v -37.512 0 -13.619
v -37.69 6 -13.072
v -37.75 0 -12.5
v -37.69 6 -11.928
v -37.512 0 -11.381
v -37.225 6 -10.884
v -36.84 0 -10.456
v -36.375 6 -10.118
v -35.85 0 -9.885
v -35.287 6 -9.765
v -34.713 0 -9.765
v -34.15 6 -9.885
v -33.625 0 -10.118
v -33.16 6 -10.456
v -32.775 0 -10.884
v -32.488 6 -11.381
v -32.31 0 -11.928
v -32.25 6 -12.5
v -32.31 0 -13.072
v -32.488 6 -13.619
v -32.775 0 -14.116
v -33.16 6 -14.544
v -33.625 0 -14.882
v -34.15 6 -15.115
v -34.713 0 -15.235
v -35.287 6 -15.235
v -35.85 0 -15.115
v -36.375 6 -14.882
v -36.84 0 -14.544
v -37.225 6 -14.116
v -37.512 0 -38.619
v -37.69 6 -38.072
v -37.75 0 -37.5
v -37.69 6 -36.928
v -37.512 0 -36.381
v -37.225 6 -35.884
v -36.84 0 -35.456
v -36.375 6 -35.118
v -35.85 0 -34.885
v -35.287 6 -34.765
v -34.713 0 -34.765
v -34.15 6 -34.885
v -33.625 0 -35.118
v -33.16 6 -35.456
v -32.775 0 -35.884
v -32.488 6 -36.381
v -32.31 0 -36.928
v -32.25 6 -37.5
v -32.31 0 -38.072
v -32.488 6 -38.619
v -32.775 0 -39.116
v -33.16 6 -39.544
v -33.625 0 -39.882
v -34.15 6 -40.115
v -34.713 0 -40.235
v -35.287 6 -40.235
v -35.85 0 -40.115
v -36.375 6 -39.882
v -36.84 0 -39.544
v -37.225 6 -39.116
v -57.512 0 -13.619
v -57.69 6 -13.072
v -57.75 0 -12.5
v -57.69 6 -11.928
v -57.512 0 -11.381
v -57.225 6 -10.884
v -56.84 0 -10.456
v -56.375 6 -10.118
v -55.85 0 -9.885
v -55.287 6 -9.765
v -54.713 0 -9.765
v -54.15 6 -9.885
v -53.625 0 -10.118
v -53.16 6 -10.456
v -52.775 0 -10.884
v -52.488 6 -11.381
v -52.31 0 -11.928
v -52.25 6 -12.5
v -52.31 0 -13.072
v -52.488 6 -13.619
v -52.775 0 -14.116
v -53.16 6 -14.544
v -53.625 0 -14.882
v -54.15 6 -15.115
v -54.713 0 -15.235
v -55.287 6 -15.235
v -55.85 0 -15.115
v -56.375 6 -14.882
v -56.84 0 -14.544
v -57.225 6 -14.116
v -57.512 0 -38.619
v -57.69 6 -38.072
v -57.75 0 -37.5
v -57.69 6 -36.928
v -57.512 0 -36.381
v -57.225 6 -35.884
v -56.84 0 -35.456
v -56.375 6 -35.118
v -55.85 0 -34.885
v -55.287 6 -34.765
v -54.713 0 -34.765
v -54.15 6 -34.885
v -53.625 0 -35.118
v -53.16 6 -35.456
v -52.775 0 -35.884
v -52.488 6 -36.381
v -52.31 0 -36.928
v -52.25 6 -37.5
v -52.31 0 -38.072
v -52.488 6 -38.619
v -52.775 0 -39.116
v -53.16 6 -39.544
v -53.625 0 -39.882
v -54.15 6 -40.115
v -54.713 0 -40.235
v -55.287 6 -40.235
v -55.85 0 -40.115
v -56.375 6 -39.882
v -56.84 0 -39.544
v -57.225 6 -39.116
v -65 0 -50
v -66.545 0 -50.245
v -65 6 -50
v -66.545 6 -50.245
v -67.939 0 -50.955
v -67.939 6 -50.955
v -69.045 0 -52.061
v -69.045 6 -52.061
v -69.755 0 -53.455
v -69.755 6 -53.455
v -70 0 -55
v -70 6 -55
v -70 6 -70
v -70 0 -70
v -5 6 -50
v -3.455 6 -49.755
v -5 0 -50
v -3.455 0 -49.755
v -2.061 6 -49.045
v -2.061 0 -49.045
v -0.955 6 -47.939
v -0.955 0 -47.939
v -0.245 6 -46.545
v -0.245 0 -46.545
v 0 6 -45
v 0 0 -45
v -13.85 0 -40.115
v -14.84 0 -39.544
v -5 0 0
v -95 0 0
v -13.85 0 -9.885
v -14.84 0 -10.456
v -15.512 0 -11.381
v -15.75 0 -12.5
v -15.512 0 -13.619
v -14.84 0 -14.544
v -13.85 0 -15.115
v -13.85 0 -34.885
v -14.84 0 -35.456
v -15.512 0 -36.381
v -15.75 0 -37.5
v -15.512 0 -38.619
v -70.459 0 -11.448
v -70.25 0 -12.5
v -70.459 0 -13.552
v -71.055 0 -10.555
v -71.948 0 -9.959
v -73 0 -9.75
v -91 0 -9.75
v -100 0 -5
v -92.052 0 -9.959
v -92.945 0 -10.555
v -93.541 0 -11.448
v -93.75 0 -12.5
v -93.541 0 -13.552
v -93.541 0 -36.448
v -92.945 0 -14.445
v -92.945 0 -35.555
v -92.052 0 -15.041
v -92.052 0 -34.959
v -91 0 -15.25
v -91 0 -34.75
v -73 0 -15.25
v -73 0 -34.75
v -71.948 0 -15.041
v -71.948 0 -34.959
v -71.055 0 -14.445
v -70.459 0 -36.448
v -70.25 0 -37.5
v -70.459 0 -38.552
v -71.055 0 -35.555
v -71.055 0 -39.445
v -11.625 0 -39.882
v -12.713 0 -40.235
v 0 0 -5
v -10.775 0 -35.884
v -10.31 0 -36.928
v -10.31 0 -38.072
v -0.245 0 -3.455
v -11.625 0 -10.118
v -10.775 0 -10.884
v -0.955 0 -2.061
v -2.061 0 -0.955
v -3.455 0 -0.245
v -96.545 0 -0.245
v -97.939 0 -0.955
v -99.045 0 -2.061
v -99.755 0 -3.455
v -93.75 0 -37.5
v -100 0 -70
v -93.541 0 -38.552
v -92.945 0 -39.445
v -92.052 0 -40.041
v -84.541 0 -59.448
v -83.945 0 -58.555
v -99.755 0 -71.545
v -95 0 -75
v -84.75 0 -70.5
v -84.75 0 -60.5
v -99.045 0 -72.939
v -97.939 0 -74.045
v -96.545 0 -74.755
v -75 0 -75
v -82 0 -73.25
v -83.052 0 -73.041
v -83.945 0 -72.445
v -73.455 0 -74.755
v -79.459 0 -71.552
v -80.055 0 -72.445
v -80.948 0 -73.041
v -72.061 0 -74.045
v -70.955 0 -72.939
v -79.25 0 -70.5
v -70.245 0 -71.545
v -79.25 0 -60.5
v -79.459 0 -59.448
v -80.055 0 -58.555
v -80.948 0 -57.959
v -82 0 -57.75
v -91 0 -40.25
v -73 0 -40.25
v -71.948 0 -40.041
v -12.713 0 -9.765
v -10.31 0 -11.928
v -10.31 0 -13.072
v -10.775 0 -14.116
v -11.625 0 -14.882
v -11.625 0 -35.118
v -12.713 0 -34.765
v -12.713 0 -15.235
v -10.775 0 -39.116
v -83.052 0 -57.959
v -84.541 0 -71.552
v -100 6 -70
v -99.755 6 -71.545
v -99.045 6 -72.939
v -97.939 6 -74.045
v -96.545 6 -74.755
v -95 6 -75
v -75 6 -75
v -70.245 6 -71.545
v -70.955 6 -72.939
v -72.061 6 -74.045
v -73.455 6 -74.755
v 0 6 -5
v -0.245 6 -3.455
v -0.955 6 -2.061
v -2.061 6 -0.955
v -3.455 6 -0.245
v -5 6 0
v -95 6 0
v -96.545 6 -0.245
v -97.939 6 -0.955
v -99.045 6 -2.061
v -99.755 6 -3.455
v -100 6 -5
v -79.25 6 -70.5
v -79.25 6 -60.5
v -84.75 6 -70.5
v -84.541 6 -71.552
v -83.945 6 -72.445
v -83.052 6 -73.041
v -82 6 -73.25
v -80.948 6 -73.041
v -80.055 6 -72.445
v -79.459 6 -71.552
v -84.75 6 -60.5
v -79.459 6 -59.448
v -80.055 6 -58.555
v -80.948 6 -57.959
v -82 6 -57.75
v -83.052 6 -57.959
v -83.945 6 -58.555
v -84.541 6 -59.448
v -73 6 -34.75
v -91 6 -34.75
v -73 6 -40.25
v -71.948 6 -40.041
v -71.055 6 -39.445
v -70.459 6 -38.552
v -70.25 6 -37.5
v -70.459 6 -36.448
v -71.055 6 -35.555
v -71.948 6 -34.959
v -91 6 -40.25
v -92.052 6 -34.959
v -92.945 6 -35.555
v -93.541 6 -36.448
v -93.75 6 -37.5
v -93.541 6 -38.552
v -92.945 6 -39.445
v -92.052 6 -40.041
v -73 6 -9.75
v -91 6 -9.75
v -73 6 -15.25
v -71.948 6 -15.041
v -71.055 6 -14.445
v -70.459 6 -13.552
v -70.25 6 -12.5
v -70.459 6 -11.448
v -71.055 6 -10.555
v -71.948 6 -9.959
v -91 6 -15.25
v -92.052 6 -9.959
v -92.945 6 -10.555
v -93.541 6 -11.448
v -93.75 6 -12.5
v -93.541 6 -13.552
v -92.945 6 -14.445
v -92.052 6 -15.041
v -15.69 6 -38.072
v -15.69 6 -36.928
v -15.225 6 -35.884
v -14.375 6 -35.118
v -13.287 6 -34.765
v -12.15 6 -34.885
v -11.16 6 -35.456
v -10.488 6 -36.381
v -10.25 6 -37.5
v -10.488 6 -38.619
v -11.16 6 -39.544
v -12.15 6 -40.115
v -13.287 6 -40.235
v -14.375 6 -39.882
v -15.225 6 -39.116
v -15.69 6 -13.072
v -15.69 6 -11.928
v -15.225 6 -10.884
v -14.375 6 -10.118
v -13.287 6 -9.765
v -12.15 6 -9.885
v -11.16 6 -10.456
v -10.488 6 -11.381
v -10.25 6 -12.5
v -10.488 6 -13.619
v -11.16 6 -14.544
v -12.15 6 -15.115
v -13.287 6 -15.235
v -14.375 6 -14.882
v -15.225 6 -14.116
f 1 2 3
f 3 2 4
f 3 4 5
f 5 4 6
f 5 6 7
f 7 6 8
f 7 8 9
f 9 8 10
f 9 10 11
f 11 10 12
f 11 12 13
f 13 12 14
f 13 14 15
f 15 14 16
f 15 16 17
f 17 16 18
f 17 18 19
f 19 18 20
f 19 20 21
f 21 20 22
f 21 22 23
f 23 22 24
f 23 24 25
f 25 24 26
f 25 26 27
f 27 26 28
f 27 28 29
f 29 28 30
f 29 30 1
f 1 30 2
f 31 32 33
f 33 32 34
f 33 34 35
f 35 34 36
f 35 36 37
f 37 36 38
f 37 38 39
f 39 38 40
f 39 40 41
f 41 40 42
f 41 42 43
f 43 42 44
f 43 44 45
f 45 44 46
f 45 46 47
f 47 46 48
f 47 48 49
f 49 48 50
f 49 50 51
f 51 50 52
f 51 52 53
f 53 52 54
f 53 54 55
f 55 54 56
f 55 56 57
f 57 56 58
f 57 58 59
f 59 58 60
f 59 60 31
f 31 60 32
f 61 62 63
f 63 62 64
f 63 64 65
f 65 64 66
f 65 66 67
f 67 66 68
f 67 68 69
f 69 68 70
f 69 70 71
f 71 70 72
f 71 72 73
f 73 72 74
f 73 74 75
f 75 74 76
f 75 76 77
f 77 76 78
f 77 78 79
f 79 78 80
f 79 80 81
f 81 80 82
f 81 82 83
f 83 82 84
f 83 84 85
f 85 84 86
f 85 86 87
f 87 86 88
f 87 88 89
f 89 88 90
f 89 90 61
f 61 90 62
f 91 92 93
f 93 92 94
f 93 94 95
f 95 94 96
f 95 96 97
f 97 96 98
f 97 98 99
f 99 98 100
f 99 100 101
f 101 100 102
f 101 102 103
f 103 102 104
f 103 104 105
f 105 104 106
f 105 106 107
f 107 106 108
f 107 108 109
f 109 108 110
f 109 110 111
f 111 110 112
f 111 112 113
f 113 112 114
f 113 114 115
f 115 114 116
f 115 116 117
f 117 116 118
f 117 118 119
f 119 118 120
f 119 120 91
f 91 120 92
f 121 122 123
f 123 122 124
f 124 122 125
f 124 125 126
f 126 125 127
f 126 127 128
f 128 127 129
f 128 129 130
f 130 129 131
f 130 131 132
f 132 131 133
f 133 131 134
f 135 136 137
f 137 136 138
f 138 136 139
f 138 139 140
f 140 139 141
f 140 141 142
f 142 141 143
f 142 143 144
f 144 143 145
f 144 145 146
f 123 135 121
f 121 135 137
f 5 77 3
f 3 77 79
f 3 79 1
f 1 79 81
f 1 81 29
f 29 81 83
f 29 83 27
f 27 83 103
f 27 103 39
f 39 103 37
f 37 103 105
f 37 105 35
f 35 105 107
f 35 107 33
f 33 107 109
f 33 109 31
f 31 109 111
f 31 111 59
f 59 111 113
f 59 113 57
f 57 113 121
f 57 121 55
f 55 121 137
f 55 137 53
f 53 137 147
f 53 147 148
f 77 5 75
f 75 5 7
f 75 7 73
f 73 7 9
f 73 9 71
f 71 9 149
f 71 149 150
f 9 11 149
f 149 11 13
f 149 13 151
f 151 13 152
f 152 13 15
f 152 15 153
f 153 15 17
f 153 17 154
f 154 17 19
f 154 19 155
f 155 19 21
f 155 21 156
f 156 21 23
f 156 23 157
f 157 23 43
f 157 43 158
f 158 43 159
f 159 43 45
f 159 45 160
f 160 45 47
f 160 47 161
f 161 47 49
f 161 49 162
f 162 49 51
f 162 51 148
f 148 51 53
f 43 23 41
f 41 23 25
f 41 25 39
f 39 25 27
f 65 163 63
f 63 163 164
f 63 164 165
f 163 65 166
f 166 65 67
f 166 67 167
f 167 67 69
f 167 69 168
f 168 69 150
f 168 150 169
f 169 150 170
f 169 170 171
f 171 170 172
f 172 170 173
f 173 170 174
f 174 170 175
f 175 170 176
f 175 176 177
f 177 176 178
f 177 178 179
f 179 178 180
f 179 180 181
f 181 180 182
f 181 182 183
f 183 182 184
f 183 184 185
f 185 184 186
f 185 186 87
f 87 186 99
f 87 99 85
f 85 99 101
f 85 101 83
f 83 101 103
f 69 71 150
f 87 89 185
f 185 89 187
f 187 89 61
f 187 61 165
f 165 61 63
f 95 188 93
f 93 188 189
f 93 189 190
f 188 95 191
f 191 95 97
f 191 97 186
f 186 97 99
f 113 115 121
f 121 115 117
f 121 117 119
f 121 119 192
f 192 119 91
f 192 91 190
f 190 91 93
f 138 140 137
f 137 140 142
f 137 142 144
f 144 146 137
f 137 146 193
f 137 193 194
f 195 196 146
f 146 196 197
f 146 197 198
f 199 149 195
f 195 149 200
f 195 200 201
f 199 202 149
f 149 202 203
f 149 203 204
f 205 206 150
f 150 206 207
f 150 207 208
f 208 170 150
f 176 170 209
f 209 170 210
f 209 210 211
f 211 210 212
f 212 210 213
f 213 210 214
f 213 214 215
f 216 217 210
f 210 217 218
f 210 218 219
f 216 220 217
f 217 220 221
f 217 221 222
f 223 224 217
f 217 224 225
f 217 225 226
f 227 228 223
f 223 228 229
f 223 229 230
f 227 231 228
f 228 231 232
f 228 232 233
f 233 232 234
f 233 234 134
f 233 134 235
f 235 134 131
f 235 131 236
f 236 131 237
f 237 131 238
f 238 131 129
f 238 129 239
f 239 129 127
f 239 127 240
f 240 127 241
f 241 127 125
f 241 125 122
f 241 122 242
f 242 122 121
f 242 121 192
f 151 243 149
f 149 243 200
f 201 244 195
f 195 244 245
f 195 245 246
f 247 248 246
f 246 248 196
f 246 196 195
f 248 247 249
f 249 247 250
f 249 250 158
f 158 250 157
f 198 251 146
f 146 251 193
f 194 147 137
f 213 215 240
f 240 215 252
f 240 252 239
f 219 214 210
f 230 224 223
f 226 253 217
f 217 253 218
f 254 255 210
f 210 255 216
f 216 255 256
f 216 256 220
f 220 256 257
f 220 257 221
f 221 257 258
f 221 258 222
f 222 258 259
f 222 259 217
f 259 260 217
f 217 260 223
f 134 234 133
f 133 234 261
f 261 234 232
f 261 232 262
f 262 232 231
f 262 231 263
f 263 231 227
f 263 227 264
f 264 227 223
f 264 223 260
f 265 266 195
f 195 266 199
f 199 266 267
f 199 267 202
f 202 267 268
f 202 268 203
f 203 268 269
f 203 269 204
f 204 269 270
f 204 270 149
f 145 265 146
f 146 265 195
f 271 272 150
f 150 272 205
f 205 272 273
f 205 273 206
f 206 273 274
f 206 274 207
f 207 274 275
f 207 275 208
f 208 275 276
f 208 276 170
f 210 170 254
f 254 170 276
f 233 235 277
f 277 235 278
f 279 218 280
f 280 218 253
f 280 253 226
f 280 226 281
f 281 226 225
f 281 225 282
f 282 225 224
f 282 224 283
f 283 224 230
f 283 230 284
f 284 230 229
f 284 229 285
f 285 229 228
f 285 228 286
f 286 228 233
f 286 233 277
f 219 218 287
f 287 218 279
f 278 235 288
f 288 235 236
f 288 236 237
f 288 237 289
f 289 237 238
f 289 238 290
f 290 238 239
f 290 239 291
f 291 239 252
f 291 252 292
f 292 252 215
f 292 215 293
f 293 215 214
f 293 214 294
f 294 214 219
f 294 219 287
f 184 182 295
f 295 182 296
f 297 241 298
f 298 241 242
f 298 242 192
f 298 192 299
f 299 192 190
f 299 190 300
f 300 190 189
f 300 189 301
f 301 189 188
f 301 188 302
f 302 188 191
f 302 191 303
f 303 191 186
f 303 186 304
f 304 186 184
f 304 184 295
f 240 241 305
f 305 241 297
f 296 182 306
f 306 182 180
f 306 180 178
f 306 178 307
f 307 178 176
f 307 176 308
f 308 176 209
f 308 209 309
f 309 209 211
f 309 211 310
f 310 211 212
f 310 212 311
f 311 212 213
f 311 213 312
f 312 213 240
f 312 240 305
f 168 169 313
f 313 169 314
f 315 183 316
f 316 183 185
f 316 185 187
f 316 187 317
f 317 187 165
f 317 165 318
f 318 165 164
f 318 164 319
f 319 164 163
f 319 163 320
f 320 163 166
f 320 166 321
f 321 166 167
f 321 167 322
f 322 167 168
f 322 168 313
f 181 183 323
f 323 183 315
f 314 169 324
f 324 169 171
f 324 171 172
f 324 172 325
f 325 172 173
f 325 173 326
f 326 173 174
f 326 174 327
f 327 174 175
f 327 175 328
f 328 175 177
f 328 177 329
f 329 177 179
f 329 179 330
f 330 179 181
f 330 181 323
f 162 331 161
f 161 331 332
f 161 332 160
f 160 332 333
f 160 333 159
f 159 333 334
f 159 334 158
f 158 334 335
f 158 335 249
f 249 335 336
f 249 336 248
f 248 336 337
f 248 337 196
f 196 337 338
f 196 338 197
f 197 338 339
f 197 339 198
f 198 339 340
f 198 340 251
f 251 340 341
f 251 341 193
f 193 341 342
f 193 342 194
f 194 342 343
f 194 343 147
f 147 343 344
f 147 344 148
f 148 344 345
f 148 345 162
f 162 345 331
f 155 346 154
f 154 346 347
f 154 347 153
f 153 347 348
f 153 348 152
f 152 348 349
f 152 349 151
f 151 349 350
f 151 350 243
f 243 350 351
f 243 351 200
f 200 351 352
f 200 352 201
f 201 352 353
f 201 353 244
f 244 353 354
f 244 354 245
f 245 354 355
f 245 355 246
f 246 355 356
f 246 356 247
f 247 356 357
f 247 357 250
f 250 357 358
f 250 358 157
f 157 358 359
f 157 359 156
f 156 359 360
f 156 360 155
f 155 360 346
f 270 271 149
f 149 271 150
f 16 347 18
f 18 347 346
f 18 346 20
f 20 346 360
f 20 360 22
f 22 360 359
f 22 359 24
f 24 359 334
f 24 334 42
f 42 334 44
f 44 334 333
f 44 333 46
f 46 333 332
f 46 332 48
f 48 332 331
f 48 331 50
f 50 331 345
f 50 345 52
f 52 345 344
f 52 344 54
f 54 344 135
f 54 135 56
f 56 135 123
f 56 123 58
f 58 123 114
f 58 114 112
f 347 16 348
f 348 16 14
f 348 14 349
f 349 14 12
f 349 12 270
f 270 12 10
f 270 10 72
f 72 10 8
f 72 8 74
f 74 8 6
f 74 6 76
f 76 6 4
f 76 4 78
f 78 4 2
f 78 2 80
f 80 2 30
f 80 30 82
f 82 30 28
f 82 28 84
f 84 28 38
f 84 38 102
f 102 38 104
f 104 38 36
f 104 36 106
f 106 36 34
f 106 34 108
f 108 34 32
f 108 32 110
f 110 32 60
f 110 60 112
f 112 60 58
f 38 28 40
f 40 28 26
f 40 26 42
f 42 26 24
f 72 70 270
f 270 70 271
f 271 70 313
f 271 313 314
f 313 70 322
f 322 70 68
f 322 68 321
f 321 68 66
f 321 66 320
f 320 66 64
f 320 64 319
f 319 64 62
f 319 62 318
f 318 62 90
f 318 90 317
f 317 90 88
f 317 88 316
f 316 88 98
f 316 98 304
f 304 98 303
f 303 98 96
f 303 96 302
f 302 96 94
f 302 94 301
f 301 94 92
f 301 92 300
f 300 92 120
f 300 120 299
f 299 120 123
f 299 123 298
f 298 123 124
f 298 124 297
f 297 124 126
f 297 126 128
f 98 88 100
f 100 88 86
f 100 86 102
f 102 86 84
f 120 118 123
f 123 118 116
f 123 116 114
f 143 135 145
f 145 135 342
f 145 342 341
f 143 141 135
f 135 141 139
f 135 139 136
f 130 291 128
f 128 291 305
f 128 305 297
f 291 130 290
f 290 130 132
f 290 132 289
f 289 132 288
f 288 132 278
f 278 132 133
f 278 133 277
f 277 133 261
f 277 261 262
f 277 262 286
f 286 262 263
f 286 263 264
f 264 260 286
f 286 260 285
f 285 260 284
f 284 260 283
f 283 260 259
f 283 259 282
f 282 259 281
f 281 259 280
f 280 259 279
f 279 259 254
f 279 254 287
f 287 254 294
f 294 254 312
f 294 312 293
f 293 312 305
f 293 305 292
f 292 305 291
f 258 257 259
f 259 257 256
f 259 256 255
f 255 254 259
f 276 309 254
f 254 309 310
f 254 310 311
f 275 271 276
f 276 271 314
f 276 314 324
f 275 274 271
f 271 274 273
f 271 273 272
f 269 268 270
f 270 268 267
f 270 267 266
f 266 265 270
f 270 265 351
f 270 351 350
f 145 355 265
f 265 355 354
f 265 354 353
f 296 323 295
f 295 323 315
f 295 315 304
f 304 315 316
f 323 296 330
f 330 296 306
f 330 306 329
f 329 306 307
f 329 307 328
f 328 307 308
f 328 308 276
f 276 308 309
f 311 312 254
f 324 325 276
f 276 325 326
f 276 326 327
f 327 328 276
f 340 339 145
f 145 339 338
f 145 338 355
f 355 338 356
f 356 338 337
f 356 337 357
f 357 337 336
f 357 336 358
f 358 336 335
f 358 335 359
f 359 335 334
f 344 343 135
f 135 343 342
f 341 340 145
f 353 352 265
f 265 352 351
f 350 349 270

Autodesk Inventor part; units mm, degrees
ref_plane "YZ Plane" through (0, 0, 0) normal (1, 0, 0) x (0, 1, 0)
ref_plane "XZ Plane" through (0, 0, 0) normal (0, 1, 0) x (-1, 0, 0)
ref_plane "XY Plane" through (0, 0, 0) normal (0, 0, 1) x (1, 0, 0)
sketch "Sketch1" plane through (0, 0, 0) normal (0, 1, 0) x (-1, 0, 0)
  line L0 (0, 0) -> (100, 0)
  line L1 (100, 0) -> (100, -50)
  line L2 (100, -50) -> (0, -50)
  line L3 (0, -50) -> (0, 0)
  line L4 (0, 0) -> (0, -16.6667)
  line L5 (0, -16.6667) -> (6, -16.6667)
  dimension "d0" = 100
  dimension "d1" = 50
  dimension "d2" = 16.6667
  dimension "d3" = 6
extrude "Extrusion1" add sketch "Sketch1" along normal blind 6
sketch "Sketch3" plane through (0, 6, 0) normal (0, 1, 0) x (1, 0, 0)
  circle A0 centre (-13, 12.5) radius 2.75
  line L0 (0, 0) -> (0, 50) projected
  line L1 (-100, 0) -> (0, 0) projected
  circle A1 centre (-13, 37.5) radius 2.75
  dimension "d21" = 5.5
  dimension "d22" = 13
  dimension "d23" = 12.5
  dimension "d26" = 25
extrude "Extrusion3" cut sketch "Sketch3" against normal through all
sketch "Sketch4" plane through (0, 6, 0) normal (0, 1, 0) x (1, 0, 0)
  circle A0 centre (-13, 12.5) radius 2.75 projected
  line L0 (-13, 12.5) -> (-73, 12.5)
  line L1 (-73, 12.5) -> (-91, 12.5) construction
  line L2 (-73, 15.25) -> (-91, 15.25)
  line L3 (-91, 9.75) -> (-73, 9.75)
  arc A1 (-73, 9.75) -> (-73, 15.25) centre (-73, 12.5) ccw
  arc A2 (-91, 15.25) -> (-91, 9.75) centre (-91, 12.5) ccw
  point P0 (0, 0)
  point P1 (-82, 12.5)
  dimension "d33" = 60
  dimension "d34" = 18
  dimension "d35" = 5.5
extrude "Extrusion4" cut sketch "Sketch4" against normal through all contours A1 L3 A2 L2
pattern_linear "Rectangular Pattern2" count 2 spacing 25 along (0, 0, -1) of "Extrusion4"
sketch "Sketch5" plane through (0, 0, -50) normal (0, 0, -1) x (-1, 0, 0)
  line L0 (100, 0) -> (100, 6) projected
  line L1 (100, 0) -> (0, 0) projected
  line L2 (100, 6) -> (70, 6)
  line L3 (70, 6) -> (70, 0)
  line L4 (70, 0) -> (100, 0)
  line L5 (100, 0) -> (100, 6)
  dimension "d45" = 30
extrude "Extrusion5" add sketch "Sketch5" along normal blind 25
sketch "Sketch6" plane through (0, 6, 0) normal (0, 1, 0) x (1, 0, 0)
  line L0 (-82, 60.5) -> (-82, 70.5) construction
  line L1 (-79.25, 60.5) -> (-79.25, 70.5)
  line L2 (-84.75, 70.5) -> (-84.75, 60.5)
  arc A0 (-84.75, 60.5) -> (-79.25, 60.5) centre (-82, 60.5) ccw
  arc A1 (-79.25, 70.5) -> (-84.75, 70.5) centre (-82, 70.5) ccw
  line L3 (-70, 50) -> (-70, 75) projected
  arc A2 (-91, 40.25) -> (-91, 34.75) centre (-91, 37.5) ccw projected
  point P0 (0, 0)
  point P1 (-82, 65.5)
  dimension "d48" = 10
  dimension "d49" = 5.5
  dimension "d50" = 12
  dimension "d51" = 28
extrude "Extrusion6" cut sketch "Sketch6" against normal through all
fillet "Fillet2" radius 5 6 edges at (-100, 3, 0) (0, 3, 0) (-70, 3, -75) (-100, 3, -75) (0, 3, -50) (-70, 3, -50)
sketch "Sketch7" plane through (0, 6, 0) normal (0, 1, 0) x (1, 0, 0)
  circle A0 centre (-13, 12.5) radius 2.75 projected
  line L0 (-13, 12.5) -> (-35, 12.5)
  line L1 (-35, 12.5) -> (-55, 12.5)
  circle A1 centre (-55, 12.5) radius 2.75
  circle A2 centre (-35, 12.5) radius 2.75
  line L2 (0, 5) -> (0, 45) projected
  line L3 (0, 0) -> (0, 45)
  circle A3 centre (-35, 37.5) radius 2.75
  circle A4 centre (-55, 37.5) radius 2.75
  dimension "d55" = 22
  dimension "d56" = 20
  dimension "d57" = 5.5
  dimension "d58" = 5.5
  dimension "d61" = 25
extrude "Extrusion7" cut sketch "Sketch7" against normal through all contours A1 | A2 L1 L0 | L0 L1 A2 | A3 | A4
sketch "Sketch9" plane through (0, 6, 0) normal (0, 1, 0) x (1, 0, 0)
  point P0 (0, 0)
properties part number "X_Carriage_Plate"
